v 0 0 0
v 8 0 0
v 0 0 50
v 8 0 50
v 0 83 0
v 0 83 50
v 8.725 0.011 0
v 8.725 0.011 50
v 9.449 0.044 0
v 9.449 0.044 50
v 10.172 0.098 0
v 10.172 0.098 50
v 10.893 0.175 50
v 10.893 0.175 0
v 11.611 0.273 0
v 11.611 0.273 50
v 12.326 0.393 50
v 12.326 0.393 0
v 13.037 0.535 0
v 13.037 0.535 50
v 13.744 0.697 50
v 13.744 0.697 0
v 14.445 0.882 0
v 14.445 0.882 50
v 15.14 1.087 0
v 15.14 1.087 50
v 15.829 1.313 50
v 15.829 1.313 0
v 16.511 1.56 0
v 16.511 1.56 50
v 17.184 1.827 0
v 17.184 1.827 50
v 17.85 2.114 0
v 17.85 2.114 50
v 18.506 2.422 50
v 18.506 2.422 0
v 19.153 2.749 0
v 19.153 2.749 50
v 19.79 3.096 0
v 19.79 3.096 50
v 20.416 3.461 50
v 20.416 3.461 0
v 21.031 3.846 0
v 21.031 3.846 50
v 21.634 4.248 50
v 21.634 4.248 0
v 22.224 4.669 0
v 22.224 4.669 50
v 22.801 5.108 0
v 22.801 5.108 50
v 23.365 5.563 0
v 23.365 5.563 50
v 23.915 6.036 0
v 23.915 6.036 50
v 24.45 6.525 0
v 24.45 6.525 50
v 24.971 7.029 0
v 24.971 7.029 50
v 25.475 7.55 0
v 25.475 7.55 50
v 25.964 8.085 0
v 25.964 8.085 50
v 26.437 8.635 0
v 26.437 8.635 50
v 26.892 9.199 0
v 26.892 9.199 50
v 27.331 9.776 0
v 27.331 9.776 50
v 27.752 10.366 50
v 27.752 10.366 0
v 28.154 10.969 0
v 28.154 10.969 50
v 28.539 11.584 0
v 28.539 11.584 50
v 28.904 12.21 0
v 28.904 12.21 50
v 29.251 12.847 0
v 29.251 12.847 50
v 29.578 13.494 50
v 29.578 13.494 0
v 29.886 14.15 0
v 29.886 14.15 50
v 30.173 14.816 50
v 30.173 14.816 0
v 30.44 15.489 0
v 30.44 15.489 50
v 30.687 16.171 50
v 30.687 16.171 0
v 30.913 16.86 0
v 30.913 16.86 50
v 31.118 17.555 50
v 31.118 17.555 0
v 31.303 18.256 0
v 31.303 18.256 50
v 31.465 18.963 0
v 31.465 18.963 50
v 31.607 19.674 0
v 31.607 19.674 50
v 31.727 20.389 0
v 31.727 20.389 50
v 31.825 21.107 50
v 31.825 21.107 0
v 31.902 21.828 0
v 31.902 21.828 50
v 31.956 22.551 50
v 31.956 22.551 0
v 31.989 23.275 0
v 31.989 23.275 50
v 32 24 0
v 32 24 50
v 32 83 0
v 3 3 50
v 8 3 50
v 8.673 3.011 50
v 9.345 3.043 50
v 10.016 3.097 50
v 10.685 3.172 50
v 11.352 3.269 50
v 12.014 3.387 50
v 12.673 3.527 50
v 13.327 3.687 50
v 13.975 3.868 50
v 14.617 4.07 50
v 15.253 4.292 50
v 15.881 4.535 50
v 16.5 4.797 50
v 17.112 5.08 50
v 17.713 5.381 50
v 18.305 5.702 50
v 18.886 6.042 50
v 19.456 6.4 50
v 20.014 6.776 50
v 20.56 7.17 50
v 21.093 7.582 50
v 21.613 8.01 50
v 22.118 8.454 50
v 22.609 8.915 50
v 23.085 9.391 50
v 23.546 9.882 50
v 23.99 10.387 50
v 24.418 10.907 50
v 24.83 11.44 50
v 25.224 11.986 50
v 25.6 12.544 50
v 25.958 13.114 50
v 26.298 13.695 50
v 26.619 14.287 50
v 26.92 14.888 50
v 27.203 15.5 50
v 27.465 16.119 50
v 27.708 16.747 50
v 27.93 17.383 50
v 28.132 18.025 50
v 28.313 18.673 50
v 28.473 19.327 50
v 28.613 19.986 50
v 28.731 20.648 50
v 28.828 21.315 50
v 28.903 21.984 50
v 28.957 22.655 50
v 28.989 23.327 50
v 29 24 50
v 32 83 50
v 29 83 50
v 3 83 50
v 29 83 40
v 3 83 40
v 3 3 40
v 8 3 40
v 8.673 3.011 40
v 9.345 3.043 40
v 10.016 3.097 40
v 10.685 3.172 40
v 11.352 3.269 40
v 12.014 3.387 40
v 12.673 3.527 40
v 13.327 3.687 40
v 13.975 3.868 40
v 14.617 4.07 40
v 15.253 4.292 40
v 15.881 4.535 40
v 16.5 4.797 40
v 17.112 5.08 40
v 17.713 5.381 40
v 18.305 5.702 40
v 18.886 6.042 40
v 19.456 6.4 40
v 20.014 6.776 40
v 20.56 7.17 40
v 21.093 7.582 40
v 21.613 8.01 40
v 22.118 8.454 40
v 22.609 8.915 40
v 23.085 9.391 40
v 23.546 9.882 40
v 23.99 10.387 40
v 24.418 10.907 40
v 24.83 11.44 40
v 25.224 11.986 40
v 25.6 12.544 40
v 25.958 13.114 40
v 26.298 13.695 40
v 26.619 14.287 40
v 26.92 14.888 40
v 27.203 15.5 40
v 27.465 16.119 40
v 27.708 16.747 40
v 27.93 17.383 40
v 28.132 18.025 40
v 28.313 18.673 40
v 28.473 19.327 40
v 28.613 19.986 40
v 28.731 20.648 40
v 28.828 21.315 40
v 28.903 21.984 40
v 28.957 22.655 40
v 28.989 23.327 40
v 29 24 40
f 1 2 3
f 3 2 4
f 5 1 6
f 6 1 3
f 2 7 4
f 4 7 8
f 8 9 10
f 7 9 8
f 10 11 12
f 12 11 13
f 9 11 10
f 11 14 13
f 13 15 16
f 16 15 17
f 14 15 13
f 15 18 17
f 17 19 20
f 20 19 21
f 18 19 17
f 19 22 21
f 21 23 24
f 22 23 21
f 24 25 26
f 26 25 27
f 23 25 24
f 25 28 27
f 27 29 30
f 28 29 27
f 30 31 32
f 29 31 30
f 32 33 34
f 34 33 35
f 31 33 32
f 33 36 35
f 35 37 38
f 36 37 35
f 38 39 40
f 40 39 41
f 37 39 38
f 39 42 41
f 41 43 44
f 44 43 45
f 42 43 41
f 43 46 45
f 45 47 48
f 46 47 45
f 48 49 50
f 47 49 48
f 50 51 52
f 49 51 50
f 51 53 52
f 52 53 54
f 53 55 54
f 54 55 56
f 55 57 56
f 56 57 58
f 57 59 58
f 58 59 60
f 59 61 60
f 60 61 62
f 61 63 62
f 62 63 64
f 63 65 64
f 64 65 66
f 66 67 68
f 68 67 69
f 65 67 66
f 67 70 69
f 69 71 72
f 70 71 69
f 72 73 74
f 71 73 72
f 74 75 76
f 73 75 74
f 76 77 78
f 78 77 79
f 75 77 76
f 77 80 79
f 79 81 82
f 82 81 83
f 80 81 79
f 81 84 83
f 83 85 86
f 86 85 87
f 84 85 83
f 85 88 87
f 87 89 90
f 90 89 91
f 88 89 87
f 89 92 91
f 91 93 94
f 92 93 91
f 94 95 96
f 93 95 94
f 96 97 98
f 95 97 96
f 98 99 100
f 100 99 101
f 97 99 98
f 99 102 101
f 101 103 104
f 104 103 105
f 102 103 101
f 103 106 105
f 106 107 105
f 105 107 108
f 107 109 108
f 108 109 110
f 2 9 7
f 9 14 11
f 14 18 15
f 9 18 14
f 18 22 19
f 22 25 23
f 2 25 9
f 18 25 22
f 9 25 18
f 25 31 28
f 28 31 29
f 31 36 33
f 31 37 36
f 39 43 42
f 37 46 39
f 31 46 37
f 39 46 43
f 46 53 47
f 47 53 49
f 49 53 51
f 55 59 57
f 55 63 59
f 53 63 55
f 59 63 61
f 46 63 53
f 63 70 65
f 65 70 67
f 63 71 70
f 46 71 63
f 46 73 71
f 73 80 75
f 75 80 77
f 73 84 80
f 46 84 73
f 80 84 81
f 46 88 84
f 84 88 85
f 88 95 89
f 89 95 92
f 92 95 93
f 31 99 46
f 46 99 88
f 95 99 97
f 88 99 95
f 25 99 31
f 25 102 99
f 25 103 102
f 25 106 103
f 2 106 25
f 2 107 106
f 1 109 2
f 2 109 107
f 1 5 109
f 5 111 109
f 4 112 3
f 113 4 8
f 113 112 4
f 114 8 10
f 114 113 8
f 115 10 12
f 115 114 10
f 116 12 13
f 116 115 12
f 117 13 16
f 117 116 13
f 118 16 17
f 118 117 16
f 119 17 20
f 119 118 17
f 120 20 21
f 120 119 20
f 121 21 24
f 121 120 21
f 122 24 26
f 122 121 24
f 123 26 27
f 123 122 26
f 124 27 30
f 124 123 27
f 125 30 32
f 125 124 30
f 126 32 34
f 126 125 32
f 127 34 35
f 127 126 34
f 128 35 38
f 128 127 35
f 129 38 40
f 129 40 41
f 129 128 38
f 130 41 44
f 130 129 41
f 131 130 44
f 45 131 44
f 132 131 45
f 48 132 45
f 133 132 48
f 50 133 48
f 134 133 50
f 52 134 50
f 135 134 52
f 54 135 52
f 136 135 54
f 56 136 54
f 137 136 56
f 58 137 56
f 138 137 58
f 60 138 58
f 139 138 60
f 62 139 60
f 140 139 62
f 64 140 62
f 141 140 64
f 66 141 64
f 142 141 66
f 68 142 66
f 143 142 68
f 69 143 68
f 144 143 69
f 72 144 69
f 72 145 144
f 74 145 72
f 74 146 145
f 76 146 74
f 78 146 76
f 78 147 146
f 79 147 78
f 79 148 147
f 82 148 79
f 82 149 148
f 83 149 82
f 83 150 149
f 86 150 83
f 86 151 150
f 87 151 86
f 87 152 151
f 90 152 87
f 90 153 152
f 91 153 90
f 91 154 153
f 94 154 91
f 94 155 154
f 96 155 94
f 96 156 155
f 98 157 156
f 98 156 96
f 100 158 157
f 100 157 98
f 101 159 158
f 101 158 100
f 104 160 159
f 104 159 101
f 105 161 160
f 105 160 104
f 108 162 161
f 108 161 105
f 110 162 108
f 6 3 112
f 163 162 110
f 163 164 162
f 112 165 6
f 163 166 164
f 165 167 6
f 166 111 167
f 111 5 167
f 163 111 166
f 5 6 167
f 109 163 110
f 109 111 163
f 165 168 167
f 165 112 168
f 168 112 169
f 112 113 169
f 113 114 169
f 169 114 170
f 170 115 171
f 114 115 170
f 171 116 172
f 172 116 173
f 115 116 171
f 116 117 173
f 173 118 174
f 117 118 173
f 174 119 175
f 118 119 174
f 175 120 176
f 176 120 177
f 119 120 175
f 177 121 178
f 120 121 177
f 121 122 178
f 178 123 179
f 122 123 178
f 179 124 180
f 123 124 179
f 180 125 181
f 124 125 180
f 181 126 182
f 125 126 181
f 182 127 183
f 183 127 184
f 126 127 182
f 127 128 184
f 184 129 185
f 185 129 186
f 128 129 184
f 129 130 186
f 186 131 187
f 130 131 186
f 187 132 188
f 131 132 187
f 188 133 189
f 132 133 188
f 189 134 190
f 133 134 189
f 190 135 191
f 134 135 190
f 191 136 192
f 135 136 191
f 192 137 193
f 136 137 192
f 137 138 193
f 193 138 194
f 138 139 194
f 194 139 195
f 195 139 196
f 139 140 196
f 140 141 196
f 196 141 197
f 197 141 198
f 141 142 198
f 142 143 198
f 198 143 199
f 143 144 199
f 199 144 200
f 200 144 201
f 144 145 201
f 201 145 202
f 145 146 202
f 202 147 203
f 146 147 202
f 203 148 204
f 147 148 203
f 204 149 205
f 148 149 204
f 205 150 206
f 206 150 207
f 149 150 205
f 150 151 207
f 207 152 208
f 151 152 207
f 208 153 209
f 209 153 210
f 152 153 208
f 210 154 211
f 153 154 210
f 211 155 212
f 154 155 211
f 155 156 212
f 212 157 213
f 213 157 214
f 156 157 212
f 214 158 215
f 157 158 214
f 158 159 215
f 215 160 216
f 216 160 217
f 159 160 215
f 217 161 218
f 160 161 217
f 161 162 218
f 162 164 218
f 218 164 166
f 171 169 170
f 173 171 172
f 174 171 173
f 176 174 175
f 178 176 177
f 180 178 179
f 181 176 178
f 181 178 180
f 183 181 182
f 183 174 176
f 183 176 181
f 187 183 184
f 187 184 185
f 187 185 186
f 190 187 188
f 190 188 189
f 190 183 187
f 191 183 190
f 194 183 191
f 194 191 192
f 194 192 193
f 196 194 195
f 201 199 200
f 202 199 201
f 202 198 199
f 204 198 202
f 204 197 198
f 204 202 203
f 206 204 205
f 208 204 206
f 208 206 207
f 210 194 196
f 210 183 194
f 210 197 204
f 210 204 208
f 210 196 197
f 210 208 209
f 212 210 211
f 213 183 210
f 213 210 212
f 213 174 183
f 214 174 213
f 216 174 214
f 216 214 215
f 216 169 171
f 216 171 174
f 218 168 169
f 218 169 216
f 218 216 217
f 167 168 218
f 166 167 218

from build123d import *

# Parameters (mm, degrees)
PAD_DEPTH    = 50
POCKET_DEPTH = 10


with BuildPart() as part:
    # Sketch → Pad (new body)
    with BuildSketch(Plane.XY):
        with BuildLine():
            Line((0, 0), (8, 0))
            ThreePointArc((8, 0), (24.970563, 7.029437), (32, 24))
            Line((32, 24), (32, 83))
            Line((32, 83), (0, 83))
            Line((0, 83), (0, 0))
        make_face()
    extrude(amount=PAD_DEPTH)

    # Sketch001 (on Face7 of Pad) → Pocket (cut)
    with BuildSketch(Plane.XY.offset(50)):
        with BuildLine():
            Line((3, 84), (3, 3))
            Line((3, 3), (8, 3))
            ThreePointArc((8, 3), (22.849242, 9.150758), (29, 24))
            Line((29, 24), (29, 84))
            Line((29, 84), (3, 84))
        make_face()
    extrude(amount=-POCKET_DEPTH, mode=Mode.SUBTRACT)


solid = part.part
